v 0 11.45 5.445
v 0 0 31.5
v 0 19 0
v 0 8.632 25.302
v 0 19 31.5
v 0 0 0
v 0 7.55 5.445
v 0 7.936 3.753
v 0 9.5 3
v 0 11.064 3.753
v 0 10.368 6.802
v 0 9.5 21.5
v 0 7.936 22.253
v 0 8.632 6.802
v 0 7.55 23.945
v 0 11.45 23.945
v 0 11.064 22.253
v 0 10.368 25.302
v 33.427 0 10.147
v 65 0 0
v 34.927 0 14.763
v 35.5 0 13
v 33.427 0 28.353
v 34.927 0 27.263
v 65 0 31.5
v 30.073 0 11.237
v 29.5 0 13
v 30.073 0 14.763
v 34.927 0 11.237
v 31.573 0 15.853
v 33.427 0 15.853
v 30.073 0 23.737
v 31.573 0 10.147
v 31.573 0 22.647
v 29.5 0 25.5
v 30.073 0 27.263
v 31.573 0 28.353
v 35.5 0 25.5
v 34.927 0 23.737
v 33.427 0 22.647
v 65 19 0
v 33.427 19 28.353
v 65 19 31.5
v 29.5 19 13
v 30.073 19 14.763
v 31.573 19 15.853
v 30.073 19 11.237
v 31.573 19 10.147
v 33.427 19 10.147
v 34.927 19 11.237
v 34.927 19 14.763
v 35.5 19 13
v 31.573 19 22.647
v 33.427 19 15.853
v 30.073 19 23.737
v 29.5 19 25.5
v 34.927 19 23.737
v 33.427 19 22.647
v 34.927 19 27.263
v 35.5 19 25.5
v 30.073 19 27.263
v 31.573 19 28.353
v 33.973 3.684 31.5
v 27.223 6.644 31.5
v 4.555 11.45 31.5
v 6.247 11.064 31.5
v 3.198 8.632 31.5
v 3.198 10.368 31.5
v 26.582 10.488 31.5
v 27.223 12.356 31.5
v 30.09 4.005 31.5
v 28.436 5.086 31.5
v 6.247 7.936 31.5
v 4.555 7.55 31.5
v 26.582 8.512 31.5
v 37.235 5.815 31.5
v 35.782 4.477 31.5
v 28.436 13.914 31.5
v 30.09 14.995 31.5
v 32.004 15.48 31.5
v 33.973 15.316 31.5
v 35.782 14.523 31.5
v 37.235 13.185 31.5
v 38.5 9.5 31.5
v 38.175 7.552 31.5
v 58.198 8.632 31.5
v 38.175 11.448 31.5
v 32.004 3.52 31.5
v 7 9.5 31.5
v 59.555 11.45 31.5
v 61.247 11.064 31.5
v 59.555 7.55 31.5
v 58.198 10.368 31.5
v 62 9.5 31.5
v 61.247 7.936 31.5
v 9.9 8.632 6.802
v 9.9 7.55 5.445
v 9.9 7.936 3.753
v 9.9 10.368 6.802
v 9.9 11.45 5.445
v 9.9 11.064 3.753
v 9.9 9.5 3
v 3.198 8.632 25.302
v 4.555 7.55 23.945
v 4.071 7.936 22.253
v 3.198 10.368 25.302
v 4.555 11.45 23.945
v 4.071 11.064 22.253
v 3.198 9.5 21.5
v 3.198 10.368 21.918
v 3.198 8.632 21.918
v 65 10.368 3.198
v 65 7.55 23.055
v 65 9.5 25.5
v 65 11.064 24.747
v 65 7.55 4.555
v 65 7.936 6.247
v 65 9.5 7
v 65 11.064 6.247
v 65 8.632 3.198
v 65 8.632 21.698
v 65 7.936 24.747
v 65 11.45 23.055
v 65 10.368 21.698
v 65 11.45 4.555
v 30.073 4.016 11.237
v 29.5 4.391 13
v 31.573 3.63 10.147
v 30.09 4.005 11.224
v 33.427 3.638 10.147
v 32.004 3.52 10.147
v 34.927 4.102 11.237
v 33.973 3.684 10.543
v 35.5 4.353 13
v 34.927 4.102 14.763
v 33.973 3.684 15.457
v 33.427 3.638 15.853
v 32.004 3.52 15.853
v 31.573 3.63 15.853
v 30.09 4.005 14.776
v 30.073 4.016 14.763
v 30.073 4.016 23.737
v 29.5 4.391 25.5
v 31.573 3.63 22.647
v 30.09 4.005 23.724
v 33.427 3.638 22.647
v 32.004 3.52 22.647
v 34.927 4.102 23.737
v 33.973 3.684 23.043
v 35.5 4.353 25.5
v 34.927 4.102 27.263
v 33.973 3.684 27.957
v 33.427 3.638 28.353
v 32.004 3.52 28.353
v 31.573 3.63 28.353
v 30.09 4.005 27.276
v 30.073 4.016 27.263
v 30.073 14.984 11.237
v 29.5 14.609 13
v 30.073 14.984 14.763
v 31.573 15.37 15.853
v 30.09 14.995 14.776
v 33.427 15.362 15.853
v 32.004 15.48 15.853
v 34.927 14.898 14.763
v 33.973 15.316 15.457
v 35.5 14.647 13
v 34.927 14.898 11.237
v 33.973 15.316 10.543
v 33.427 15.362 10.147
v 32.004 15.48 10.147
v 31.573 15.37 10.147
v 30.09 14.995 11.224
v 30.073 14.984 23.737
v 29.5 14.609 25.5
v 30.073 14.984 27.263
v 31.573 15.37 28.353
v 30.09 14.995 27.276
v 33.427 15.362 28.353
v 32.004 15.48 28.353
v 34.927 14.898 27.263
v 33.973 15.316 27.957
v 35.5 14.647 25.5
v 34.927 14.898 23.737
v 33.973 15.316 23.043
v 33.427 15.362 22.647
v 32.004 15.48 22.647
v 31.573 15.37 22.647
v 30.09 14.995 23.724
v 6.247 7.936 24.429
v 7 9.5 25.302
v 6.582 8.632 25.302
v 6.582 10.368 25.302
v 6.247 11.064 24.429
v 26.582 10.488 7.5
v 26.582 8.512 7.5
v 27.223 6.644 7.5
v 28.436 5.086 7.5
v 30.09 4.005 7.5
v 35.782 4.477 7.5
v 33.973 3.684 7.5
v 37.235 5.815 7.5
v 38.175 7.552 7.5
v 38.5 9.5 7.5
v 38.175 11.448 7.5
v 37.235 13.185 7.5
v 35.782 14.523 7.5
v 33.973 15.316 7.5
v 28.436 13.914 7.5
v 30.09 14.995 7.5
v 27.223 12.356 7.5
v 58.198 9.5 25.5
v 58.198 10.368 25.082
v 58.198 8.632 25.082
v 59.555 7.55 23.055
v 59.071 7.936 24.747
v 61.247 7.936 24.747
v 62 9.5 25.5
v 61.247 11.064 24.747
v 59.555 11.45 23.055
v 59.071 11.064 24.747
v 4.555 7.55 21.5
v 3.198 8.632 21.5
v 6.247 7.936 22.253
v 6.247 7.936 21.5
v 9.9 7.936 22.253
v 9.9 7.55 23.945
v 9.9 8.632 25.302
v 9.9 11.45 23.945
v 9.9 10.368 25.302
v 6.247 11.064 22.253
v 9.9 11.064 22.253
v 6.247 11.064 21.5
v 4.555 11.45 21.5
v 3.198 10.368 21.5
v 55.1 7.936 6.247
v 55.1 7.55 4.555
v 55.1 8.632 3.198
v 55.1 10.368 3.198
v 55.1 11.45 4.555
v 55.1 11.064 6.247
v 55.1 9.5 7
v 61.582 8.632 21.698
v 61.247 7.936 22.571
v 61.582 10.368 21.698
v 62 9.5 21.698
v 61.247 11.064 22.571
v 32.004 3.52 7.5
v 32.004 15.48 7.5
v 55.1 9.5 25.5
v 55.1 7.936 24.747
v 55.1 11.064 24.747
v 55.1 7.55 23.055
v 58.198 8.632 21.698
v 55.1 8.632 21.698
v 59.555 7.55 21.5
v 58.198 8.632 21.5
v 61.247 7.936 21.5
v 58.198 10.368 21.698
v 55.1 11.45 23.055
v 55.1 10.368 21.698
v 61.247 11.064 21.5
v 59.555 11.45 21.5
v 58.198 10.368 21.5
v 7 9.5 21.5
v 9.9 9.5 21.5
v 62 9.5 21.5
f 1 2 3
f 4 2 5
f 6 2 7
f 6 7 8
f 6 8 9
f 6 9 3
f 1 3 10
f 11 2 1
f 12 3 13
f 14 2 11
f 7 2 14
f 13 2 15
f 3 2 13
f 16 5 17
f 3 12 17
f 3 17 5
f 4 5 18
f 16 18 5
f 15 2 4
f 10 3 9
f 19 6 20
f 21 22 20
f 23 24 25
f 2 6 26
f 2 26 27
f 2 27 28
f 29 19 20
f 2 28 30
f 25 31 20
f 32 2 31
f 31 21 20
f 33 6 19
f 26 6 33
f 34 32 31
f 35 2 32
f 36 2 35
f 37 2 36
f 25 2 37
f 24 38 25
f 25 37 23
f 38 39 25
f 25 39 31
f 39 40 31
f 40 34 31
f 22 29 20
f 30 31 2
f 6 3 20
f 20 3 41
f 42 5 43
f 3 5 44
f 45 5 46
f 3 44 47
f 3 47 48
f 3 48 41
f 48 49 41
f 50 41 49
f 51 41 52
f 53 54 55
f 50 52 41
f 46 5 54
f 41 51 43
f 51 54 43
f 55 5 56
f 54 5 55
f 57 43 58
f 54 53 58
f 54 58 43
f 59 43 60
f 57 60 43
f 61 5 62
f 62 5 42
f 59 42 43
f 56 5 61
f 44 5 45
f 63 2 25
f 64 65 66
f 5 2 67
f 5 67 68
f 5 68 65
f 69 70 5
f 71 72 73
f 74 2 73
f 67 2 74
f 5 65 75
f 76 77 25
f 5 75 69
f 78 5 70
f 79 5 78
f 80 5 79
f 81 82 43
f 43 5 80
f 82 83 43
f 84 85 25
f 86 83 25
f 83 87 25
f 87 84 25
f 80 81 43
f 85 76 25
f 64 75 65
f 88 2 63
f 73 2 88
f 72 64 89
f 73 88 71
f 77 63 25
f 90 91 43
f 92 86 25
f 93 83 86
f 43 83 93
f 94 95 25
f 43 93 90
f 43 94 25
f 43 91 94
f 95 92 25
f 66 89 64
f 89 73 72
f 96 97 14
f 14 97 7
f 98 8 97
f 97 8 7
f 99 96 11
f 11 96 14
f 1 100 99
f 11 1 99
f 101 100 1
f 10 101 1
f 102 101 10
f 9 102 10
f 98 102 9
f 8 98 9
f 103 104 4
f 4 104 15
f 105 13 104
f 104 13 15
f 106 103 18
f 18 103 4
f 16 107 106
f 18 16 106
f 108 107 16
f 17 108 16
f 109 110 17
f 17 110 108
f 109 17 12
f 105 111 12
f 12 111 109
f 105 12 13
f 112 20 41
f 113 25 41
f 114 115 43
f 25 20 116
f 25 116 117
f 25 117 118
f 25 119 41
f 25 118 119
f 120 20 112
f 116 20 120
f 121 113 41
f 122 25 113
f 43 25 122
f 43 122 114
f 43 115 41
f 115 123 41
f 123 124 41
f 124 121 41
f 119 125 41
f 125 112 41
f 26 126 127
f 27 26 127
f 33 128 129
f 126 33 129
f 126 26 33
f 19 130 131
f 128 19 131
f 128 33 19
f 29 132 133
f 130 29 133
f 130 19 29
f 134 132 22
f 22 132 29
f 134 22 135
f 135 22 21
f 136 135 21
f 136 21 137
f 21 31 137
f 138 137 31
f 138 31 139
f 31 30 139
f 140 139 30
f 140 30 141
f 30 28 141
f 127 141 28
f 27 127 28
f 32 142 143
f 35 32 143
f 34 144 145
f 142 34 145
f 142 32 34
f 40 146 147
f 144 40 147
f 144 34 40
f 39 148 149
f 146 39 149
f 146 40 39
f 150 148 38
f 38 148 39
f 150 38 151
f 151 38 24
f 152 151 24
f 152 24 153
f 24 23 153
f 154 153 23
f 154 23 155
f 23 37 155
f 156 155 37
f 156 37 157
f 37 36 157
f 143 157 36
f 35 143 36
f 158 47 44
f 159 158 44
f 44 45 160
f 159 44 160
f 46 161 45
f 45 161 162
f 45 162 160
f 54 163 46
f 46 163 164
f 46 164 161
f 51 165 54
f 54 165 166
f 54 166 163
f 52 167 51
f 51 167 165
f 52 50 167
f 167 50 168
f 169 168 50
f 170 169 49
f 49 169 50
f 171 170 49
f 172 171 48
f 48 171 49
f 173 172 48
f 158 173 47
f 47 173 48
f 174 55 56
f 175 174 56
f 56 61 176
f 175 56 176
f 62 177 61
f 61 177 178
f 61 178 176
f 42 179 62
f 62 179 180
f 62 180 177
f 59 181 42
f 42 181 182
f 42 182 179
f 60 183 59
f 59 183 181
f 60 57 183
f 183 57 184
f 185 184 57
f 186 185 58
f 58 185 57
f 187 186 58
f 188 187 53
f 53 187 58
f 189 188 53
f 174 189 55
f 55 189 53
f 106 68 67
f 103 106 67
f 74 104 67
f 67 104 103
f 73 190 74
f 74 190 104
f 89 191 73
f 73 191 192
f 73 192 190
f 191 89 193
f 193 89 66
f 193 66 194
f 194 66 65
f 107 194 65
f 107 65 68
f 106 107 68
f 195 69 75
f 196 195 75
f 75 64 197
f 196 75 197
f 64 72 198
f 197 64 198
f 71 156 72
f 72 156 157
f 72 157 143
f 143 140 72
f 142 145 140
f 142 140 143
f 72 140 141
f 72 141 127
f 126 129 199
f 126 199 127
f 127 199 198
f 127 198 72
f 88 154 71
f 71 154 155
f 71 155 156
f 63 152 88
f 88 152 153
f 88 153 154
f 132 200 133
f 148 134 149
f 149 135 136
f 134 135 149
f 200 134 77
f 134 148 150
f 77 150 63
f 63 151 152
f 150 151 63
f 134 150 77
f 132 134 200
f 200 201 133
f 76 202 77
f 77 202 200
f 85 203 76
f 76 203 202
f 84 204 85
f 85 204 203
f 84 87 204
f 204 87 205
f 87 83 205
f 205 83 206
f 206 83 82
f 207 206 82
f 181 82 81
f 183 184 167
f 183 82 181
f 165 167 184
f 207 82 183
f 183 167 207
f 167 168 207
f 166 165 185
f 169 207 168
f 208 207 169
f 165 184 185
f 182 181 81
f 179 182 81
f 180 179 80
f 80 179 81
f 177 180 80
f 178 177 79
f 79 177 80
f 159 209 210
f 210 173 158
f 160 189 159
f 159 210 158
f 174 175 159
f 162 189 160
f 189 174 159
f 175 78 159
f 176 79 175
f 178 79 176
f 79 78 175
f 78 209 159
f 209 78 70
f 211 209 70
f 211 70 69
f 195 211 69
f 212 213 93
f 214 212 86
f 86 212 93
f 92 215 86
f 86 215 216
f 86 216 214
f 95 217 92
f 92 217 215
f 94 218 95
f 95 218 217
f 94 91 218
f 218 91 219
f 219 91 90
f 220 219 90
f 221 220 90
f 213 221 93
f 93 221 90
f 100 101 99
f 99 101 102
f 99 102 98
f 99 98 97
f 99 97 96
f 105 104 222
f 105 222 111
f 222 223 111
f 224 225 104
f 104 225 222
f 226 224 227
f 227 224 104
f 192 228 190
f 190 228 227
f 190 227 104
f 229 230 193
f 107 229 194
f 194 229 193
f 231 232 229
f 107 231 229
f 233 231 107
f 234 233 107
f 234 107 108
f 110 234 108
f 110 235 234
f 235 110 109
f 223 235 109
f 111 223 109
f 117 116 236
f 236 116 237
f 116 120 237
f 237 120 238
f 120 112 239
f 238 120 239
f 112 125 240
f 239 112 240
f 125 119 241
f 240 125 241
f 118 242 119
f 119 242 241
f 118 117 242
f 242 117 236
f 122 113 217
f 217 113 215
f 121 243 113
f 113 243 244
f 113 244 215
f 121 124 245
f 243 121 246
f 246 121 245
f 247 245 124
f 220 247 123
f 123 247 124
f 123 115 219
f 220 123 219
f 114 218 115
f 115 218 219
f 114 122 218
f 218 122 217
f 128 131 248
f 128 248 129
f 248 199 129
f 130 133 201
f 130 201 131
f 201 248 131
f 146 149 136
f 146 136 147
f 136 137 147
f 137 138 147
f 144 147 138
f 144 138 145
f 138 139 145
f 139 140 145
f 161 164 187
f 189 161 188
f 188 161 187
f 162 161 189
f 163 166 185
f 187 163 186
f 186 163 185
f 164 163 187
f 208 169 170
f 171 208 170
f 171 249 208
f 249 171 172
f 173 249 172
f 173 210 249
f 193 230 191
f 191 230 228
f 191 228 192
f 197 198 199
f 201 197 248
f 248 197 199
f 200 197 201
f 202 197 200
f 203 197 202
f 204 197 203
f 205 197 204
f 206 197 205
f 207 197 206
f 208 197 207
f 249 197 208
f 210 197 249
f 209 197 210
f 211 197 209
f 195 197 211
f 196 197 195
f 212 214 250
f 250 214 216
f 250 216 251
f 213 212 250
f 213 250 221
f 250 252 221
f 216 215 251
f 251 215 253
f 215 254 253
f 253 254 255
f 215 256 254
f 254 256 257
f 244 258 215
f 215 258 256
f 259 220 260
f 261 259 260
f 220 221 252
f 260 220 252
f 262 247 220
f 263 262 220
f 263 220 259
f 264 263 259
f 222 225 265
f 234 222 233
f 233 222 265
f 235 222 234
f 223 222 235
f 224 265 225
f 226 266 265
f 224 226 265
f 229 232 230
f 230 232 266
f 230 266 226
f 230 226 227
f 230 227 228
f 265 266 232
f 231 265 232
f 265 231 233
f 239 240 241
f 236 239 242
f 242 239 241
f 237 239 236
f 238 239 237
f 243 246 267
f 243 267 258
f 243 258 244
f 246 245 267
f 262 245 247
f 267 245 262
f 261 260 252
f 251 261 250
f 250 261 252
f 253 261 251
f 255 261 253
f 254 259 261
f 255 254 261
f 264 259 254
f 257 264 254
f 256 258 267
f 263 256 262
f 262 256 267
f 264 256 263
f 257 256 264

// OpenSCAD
// file: ISOThread_20120823.scad
// ISO Metric Thread Implementation
// Trevor Moseley
// 23/08/2012

// For thread dimensions see
//   http://en.wikipedia.org/wiki/File:ISO_and_UTS_Thread_Dimensions.svg

//hex_nut(6);
//hex_nut(8);
//hex_nut(10);

hex_bolt(6,12);
//hex_bolt(8,16);
//hex_bolt(10,16);
//hex_bolt(12,24);

//thread_out(8,16);

defQ = 32;

// function for thread quality
function get_thr_qual(dia) = lookup(dia, [
[5,10],[6,12],[7,14],[8,16],[10,20],[12,12],[14,28],[16,32],[18,36],[20,40],[22,44],[24,48],[27,54],[30,60],[33,66],[36,72],[39,78],[42,84],[45,90],[48,96],[52,104],[56,112],[60,120],[64,128],[78,156]]);

// function for shaft quality
function get_sh_qual(dia) = lookup(dia, [
[5,10],[6,12],[7,14],[8,16],[10,20],[12,24],[14,28],[16,32],[18,36],[20,40],[22,44],[24,48],[27,54],[30,60],[33,66],[36,72],[39,78],[42,84],[45,90],[48,96],[52,104],[56,112],[60,120],[64,128],[78,156]]);

module hex_nut(dia)
{
	$fn = get_sh_qual(dia);
	thr = get_thr_qual(dia);
	hi = hex_nut_hi(dia);
	difference()
	{
		cylinder(r = hex_nut_dia(dia)/2,h = hi, $fn=6);
		translate([0,0,-0.1])	cylinder(r = dia/2, h =hi + 0.2);
	}
	translate([0,0,0.1])	thread_in(dia,hi-0.2,thr);
}

module hex_bolt(dia,hi)
{
	$fn = get_sh_qual(dia);
	thr = get_thr_qual(dia);
	hhi = hex_bolt_hi(dia);
	cylinder(r = hex_bolt_dia(dia)/2,h = hhi, $fn=6);
	translate([0,0,hhi-0.1])	thread_out(dia,hi+0.1,thr);
}

// function for thread pitch
function get_coarse_pitch(dia) = lookup(dia, [
[1,0.25],[1.2,0.25],[1.4,0.3],[1.6,0.35],[1.8,0.35],[2,0.4],[2.5,0.45],[3,0.5],[3.5,0.6],[4,0.7],[5,0.8],[6,1],[7,1],[8,1.25],[10,1.5],[12,1.75],[14,2],[16,2],[18,2.5],[20,2.5],[22,2.5],[24,3],[27,3],[30,3.5],[33,3.5],[36,4],[39,4],[42,4.5],[45,4.5],[48,5],[52,5],[56,5.5],[60,5.5],[64,6],[78,5]]);

// function for hex nut diameter from thread size
function hex_nut_dia(dia) = lookup(dia, [
[3,6.4],[4,8.1],[5,9.2],[6,11.5],[8,16.0],[10,19.6],[12,22.1],[16,27.7],[20,34.6],[24,41.6],[30,53.1],[36,63.5]]);
// function for hex nut height from thread size
function hex_nut_hi(dia) = lookup(dia, [
[3,2.4],[4,3.2],[5,4],[6,3],[8,5],[10,5],[12,10],[16,13],[20,16],[24,19],[30,24],[36,29]]);

// function for hex bolt head diameter from thread size
function hex_bolt_dia(dia) = lookup(dia, [
[3,6.4],[4,8.1],[5,9.2],[6,11.5],[8,14.0],[10,16],[12,22.1],[16,27.7],[20,34.6],[24,41.6],[30,53.1],[36,63.5]]);
// function for hex bolt head height from thread size
function hex_bolt_hi(dia) = lookup(dia, [
[3,2.4],[4,3.2],[5,4],[6,3.5],[8,4.5],[10,5],[12,10],[16,13],[20,16],[24,19],[30,24],[36,29]]);

module thread_out(dia,hi,thr=defQ)
{
	p = get_coarse_pitch(dia);
	h = (cos(30)*p)/8;
	Rmin = (dia/2) - (5*h);	// as wiki Dmin
	s = 360/thr;
	t = (hi-p)/p;			// number of turns
	n = t*thr;				// number of segments
	//echo(str("dia=",dia," hi=",hi," p=",p," h=",h," Rmin=",Rmin," s=",s));
	cylinder(r = Rmin, h = hi);
	for(sg=[0:n])
		th_out_pt(Rmin-0.1,p,s,sg,thr,h,(hi-p)/n);
}

module th_out_pt(rt,p,s,sg,thr,h,sh)
// rt = radius of thread (nearest centre)
// p = pitch
// s = segment length (degrees)
// sg = segment number
// thr = segments in circumference
// h = ISO h of thread / 8
// sh = segment height (z)
{
	as = (sg % thr) * s;			// angle to start of seg
	ae = as + s  - (s/100);		// angle to end of seg (with overlap)
	z = sh*sg;

	cas=cos(as);
	sas=sin(as);
	cae=cos(ae);
	sae=sin(ae);
	rtp=rt+(5*h);

	casrt=cas*rt;
	sasrt=sas*rt;
	caert=cae*rt;
	saert=sae*rt;

	//   1,4
	//   |\
	//   |  \  2,5
 	//   |  / 
	//   |/
	//   0,3
	//  view from front (x & z) extruded in y by sg
	//  
	//echo(str("as=",as,", ae=",ae," z=",z));
	polyhedron(
		points = [
			[casrt,sasrt,z],					// 0
			[casrt,sasrt,z+(3/4*p)],			// 1
			[cas*rtp,sas*rtp,z+(3/8*p)],		// 2
			[caert,saert,z+sh],				// 3
			[caert,saert,z+(3/4*p)+sh],		// 4
			[cae*rtp,sae*rtp,z+sh+(3/8*p)]],	// 5
		triangles = [
			[0,1,2],			// near face
			[3,5,4],			// far face
			[0,3,4],[0,4,1],	// left face
			[0,5,3],[0,2,5],	// bottom face
			[1,4,5],[1,5,2]]);	// top face
}

module thread_in(dia,hi,thr=defQ)
{
	p = get_coarse_pitch(dia);
	h = (cos(30)*p)/8;
	Rmin = (dia/2) - (5*h);	// as wiki Dmin
	s = 360/thr;
	t = (hi-p)/p;			// number of turns
	n = t*thr;				// number of segments
	//echo(str("dia=",dia," hi=",hi," p=",p," h=",h," Rmin=",Rmin," s=",s));
	difference()
	{
		cylinder(r = (dia/2)+0.5,h = hi);
		translate([0,0,-1]) cylinder(r = (dia/2)+0.1, h = hi+2);
	}
	for(sg=[0:n])
		th_in_pt(Rmin+0.2,p,s,sg,thr,h,(hi-p)/n);
}

module th_in_pt(rt,p,s,sg,thr,h,sh)
// rt = radius of thread (nearest centre)
// p = pitch
// s = segment length (degrees)
// sg = segment number
// thr = segments in circumference
// h = ISO h of thread / 8
// sh = segment height (z)
{
//	as = 360 - (((sg % thr) * s) - 180);	// angle to start of seg
//	ae = as - s + (s/100);		// angle to end of seg (with overlap)
	as = ((sg % thr) * s - 180);	// angle to start of seg
	ae = as + s -(s/100);		// angle to end of seg (with overlap)
	z = sh*sg;

	cas=cos(as);
	sas=sin(as);
	cae=cos(ae);
	sae=sin(ae);
	rtp=rt+(5*h);

	casrt=cas*rt;
	casrtp=cas*rtp;
	sasrt=sas*rt;
	sasrtp=sas*rtp;
	caert=cae*rt;
	caertp=cae*rtp;
	saert=sae*rt;
	saertp=sae*rtp;

	//         2,5
	//          /|
	//  1,4 /  | 
 	//        \  |
	//          \|
	//         0,3
	//  view from front (x & z) extruded in y by sg
	//  
	polyhedron(
		points = [
			[casrtp,sasrtp,z],				//0
			[casrt,sasrt,z+(3/8*p)],			//1
			[casrtp,sasrtp,z+(3/4*p)],		//2
			[caertp,saertp,z+sh],			//3
			[caert,saert,z+(3/8*p)+sh],		//4
			[caertp,saertp,z+(3/4*p)+sh]],	//5
		triangles = [
			[0,1,2],			// near face
			[3,5,4],			// far face
			[0,3,4],[0,4,1],	// left face
			[0,5,3],[0,2,5],	// bottom face
			[1,4,5],[1,5,2]]);	// top face
}
// main file
use <ISOThread_20120823.scad>;

module z_block(w=65, h=19, d=31.5) {

	difference() {
		cube([w, h, d]);

		// z rod hole
		translate([w/2, h/2, d-24]) cylinder(h=24, r=6);

		// z rod screw holes
		translate([w/2, -h/2, 13]) rotate([-90, 0, 0]) cylinder(r=3, h=d);
		translate([w/2, -h/2, 25.5]) rotate([-90, 0, 0]) cylinder(r=3, h=d);


		// top  mounting screw holes
		translate([5, h/2, d-10]) cylinder(r=2, h=10);
		translate([w-5, h/2, d-10]) cylinder(r=2, h=10);

		// side mounting screw holes
		translate([0-.1, h/2, 5]) rotate([0, 90, 0]) cylinder(r=2, h=10);
		translate([0-.1, h/2, 23.5]) rotate([0, 90, 0]) cylinder(r=2, h=10);
		translate([w+.1, h/2, 5]) rotate([0, -90, 0]) cylinder(r=2, h=10);
		translate([w+.1, h/2, 23.5]) rotate([0, -90, 0]) cylinder(r=2, h=10);
		



	}
}



z_block();
